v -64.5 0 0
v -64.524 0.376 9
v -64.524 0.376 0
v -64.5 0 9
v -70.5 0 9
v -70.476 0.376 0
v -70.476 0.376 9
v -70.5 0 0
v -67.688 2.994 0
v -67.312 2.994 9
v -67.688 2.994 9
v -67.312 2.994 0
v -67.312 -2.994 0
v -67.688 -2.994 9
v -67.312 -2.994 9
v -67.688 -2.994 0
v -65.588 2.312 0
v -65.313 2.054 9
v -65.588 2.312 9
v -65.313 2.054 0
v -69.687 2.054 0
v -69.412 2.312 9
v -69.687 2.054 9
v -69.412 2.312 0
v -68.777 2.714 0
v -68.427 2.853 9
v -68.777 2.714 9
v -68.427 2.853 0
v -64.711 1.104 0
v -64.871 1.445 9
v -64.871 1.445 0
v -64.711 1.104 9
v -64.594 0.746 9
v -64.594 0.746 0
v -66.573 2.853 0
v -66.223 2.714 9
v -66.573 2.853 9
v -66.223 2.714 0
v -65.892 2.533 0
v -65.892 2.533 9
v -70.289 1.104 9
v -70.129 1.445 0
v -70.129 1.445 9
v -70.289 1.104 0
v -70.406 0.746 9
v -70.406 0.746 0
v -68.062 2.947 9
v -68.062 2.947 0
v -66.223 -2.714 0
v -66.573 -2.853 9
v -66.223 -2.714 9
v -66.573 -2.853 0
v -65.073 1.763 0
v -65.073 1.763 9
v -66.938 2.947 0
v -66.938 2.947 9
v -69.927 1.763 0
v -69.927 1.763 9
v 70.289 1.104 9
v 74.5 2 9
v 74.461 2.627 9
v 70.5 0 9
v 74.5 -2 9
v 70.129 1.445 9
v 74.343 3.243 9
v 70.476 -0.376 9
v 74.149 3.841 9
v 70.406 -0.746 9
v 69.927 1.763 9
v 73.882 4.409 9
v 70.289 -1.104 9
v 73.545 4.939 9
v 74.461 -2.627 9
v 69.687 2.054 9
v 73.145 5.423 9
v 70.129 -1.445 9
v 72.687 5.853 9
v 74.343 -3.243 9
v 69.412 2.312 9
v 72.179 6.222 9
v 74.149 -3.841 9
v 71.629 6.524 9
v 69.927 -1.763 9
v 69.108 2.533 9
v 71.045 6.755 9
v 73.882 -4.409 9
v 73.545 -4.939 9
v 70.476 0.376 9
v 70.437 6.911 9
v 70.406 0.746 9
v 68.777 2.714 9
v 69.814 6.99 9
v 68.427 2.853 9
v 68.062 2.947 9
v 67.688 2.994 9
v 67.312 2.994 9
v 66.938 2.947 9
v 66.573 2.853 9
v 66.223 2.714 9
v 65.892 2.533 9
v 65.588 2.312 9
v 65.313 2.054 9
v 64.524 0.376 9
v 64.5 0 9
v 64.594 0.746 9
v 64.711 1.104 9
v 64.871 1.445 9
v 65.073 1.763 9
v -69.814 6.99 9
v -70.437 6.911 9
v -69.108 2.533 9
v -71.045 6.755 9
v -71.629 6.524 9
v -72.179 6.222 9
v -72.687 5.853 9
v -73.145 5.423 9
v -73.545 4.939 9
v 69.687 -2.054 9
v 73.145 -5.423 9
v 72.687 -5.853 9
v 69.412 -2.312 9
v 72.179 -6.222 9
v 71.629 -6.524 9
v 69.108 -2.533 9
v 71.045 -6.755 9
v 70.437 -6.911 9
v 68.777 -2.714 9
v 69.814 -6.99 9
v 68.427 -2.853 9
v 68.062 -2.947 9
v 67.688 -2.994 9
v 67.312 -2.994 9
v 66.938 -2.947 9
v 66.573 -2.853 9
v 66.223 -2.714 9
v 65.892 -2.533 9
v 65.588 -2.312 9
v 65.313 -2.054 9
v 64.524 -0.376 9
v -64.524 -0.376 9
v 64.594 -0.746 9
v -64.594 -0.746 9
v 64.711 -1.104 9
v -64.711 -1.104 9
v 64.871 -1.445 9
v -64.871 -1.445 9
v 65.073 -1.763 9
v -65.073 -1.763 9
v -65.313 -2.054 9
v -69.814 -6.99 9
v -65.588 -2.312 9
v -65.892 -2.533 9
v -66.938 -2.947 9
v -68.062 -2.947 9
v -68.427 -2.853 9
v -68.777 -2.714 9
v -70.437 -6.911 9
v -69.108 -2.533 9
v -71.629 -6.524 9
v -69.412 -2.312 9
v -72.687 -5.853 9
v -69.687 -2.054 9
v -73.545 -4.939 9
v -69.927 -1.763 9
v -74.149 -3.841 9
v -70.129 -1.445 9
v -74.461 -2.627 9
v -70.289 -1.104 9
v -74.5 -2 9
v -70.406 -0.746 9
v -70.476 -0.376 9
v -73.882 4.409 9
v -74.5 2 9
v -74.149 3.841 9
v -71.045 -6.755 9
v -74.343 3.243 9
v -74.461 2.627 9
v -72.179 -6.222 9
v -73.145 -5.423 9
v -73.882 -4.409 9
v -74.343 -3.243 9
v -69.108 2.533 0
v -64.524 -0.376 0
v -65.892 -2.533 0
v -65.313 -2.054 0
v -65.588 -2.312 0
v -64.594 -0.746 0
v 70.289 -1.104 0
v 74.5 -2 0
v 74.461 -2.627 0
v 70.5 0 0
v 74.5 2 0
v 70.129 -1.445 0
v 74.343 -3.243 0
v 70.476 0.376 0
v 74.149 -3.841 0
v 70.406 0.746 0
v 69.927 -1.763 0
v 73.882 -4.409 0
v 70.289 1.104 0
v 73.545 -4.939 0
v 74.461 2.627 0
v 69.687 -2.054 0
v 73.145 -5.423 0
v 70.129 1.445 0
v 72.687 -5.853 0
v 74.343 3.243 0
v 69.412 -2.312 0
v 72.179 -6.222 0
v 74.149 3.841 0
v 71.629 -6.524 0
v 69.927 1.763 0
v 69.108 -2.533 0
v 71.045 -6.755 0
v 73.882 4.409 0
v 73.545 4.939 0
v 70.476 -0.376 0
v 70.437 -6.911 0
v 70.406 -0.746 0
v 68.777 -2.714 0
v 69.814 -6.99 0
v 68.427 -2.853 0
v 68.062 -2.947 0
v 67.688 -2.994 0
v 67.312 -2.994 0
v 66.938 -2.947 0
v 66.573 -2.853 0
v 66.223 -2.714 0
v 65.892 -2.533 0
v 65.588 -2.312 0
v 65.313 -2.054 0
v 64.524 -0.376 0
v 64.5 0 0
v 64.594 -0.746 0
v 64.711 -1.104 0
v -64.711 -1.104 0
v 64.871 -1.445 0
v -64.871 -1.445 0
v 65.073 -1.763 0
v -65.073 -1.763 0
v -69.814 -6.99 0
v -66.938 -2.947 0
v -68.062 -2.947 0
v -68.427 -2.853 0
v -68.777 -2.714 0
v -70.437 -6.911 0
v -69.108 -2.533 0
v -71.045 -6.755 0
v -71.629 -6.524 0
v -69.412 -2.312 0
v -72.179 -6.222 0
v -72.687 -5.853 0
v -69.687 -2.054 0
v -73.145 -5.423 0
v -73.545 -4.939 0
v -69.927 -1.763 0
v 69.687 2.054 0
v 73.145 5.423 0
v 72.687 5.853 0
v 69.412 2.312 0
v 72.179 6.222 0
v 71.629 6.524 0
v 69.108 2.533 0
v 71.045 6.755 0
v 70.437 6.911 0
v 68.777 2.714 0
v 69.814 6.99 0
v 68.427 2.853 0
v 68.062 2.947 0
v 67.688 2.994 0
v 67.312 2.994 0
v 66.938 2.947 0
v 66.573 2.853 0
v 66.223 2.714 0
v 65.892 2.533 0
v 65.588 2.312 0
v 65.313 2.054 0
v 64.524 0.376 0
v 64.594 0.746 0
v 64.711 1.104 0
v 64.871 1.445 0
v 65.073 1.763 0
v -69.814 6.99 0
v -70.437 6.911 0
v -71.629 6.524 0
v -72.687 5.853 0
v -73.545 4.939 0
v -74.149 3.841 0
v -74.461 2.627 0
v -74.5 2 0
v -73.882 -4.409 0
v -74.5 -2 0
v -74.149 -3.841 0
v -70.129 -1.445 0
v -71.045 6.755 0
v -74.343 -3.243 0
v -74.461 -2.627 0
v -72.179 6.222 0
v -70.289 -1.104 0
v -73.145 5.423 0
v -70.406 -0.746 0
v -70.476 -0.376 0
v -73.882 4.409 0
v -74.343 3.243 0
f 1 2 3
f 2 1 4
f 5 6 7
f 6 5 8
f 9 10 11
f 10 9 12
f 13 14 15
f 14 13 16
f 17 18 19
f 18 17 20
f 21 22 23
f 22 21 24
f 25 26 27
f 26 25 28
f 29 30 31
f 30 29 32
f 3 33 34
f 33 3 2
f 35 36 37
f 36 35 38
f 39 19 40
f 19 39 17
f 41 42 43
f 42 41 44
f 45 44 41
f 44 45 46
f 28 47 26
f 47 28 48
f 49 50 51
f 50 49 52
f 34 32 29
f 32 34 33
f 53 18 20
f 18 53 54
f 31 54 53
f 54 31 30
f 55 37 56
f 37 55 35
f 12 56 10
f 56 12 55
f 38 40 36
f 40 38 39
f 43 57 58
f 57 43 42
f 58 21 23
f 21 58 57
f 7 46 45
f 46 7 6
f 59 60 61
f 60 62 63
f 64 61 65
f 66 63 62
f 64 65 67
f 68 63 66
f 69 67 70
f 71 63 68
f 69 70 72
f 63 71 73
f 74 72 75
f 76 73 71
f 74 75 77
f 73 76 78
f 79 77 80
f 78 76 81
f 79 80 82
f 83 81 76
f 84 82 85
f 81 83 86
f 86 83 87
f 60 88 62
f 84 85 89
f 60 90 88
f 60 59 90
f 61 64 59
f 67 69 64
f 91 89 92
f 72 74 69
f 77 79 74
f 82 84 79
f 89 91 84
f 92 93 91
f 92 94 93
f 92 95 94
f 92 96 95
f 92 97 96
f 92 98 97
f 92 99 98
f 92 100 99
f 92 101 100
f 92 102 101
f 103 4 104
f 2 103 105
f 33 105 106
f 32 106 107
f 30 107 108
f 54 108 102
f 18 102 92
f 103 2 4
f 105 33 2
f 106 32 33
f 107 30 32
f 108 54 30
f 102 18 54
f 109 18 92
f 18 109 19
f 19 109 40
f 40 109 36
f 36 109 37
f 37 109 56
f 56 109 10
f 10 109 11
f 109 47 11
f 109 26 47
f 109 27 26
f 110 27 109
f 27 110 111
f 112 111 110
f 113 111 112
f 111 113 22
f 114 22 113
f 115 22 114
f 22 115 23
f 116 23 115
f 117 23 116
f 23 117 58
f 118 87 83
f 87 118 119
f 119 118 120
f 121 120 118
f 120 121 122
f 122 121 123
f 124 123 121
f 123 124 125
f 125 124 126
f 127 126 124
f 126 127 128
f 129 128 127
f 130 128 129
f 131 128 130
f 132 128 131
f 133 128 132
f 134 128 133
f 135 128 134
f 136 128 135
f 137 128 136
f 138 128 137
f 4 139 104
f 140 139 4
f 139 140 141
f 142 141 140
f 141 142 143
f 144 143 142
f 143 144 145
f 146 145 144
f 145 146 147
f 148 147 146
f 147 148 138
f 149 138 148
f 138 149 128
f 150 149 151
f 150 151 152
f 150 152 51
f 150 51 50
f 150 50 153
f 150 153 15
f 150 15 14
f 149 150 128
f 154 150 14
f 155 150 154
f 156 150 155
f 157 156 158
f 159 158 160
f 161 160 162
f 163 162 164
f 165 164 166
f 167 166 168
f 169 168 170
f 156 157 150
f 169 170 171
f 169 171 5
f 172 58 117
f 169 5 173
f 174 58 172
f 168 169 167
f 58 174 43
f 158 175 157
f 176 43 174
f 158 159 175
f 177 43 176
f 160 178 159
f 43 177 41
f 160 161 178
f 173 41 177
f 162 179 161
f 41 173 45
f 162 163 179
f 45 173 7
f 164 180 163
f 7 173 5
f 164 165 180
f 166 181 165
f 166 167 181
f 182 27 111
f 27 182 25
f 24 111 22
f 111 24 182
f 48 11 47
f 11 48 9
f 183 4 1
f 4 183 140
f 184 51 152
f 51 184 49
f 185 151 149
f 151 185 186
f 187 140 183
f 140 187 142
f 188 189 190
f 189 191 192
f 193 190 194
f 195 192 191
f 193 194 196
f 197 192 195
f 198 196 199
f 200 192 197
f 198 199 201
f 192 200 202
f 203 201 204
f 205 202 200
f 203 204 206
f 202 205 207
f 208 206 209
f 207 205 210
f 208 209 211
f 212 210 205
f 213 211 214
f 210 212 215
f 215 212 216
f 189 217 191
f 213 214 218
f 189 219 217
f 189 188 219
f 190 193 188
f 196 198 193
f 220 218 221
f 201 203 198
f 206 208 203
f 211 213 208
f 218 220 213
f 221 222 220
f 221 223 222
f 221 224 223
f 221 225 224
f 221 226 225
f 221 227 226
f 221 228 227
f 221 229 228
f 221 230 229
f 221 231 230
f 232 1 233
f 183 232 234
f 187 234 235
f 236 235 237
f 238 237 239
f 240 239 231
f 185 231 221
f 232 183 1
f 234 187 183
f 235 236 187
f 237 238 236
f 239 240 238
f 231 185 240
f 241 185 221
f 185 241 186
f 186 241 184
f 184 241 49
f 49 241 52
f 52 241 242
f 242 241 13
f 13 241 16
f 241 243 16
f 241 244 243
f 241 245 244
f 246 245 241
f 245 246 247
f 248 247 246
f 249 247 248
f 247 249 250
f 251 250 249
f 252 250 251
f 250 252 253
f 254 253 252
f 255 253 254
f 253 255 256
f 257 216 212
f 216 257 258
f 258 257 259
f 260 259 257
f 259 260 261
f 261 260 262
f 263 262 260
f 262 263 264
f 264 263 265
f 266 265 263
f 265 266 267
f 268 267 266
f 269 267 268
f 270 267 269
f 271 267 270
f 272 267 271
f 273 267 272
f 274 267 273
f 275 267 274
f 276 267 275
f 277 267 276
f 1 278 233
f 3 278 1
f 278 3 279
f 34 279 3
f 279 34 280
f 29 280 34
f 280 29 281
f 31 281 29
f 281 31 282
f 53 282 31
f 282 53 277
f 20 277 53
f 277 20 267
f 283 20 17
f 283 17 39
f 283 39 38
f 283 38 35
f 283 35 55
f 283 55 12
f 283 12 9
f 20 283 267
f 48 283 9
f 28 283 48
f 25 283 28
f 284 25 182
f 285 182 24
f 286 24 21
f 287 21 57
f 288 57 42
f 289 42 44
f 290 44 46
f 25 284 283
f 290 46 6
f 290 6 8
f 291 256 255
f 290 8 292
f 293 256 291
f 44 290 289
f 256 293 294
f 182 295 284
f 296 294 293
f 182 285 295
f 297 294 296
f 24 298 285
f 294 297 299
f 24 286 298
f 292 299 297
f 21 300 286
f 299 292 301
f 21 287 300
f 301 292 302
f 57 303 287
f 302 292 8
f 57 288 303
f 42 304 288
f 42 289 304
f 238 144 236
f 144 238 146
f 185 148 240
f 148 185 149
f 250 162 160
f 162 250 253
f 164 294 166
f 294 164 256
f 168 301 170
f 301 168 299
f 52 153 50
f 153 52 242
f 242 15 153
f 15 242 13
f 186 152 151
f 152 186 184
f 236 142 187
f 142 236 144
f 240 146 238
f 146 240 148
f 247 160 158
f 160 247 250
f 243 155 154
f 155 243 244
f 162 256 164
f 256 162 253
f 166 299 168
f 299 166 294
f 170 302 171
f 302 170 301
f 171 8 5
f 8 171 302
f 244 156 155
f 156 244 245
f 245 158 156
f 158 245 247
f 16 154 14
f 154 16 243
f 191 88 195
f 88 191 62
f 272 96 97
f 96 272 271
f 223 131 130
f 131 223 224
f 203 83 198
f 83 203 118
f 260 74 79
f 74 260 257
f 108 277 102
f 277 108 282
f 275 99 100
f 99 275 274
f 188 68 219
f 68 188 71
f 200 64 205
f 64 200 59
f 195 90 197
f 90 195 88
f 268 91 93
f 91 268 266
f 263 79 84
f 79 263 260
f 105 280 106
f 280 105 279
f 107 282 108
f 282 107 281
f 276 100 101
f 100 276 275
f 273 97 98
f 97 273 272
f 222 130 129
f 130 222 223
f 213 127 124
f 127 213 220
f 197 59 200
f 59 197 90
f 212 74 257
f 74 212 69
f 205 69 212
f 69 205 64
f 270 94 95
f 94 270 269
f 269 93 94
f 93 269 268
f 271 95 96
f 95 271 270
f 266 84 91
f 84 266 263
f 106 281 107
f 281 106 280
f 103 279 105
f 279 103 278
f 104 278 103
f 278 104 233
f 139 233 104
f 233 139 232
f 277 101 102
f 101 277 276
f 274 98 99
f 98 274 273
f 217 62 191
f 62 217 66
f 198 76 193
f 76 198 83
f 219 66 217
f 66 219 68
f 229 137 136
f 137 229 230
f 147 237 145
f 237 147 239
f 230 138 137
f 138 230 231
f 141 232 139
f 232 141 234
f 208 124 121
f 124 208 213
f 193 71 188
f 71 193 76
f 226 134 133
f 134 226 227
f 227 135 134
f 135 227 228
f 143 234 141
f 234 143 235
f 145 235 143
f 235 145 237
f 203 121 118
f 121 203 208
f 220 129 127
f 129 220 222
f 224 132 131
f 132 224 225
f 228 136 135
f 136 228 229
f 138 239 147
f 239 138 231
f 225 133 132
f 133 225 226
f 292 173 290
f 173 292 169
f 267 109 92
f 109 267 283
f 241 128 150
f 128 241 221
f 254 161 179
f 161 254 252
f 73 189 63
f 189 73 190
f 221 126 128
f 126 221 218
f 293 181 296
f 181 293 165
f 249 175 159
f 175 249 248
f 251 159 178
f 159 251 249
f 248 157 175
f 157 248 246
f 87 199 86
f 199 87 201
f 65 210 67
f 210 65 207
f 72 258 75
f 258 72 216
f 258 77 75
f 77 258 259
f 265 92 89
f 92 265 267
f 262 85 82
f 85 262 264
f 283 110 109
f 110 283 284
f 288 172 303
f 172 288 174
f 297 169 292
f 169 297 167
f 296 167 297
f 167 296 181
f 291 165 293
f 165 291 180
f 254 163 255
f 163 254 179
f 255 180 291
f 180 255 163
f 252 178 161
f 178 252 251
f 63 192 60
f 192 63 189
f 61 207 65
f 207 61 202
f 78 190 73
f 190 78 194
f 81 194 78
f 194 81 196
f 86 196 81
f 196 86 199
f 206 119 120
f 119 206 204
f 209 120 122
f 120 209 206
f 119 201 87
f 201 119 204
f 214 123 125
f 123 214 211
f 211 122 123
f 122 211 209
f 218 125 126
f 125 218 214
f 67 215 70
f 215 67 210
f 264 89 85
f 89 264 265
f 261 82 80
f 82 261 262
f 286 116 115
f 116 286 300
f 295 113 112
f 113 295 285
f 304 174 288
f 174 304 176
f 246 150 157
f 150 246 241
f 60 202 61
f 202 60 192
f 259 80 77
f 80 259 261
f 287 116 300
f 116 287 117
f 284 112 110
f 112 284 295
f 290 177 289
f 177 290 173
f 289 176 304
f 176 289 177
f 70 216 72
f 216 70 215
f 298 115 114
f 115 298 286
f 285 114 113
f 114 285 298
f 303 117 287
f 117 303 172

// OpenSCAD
$fn = 50;


difference() {
	union() {
		hull() {
			translate(v = [-69.5000000000, 2.0000000000, 0]) {
				cylinder(h = 9, r = 5);
			}
			translate(v = [69.5000000000, 2.0000000000, 0]) {
				cylinder(h = 9, r = 5);
			}
			translate(v = [-69.5000000000, -2.0000000000, 0]) {
				cylinder(h = 9, r = 5);
			}
			translate(v = [69.5000000000, -2.0000000000, 0]) {
				cylinder(h = 9, r = 5);
			}
		}
	}
	union() {
		translate(v = [-67.5000000000, 0.0000000000, 0]) {
			cylinder(h = 9, r = 3.0000000000);
		}
		translate(v = [67.5000000000, 0.0000000000, 0]) {
			cylinder(h = 9, r = 3.0000000000);
		}
		translate(v = [-67.5000000000, 0.0000000000, 0]) {
			cylinder(h = 9, r = 1.5000000000);
		}
		translate(v = [67.5000000000, 0.0000000000, 0]) {
			cylinder(h = 9, r = 1.5000000000);
		}
		translate(v = [-67.5000000000, 0.0000000000, 0]) {
			cylinder(h = 9, r = 1.5000000000);
		}
		translate(v = [67.5000000000, 0.0000000000, 0]) {
			cylinder(h = 9, r = 1.5000000000);
		}
		translate(v = [-67.5000000000, 0.0000000000, 0]) {
			cylinder(h = 9, r = 1.5000000000);
		}
		translate(v = [67.5000000000, 0.0000000000, 0]) {
			cylinder(h = 9, r = 1.5000000000);
		}
	}
}
